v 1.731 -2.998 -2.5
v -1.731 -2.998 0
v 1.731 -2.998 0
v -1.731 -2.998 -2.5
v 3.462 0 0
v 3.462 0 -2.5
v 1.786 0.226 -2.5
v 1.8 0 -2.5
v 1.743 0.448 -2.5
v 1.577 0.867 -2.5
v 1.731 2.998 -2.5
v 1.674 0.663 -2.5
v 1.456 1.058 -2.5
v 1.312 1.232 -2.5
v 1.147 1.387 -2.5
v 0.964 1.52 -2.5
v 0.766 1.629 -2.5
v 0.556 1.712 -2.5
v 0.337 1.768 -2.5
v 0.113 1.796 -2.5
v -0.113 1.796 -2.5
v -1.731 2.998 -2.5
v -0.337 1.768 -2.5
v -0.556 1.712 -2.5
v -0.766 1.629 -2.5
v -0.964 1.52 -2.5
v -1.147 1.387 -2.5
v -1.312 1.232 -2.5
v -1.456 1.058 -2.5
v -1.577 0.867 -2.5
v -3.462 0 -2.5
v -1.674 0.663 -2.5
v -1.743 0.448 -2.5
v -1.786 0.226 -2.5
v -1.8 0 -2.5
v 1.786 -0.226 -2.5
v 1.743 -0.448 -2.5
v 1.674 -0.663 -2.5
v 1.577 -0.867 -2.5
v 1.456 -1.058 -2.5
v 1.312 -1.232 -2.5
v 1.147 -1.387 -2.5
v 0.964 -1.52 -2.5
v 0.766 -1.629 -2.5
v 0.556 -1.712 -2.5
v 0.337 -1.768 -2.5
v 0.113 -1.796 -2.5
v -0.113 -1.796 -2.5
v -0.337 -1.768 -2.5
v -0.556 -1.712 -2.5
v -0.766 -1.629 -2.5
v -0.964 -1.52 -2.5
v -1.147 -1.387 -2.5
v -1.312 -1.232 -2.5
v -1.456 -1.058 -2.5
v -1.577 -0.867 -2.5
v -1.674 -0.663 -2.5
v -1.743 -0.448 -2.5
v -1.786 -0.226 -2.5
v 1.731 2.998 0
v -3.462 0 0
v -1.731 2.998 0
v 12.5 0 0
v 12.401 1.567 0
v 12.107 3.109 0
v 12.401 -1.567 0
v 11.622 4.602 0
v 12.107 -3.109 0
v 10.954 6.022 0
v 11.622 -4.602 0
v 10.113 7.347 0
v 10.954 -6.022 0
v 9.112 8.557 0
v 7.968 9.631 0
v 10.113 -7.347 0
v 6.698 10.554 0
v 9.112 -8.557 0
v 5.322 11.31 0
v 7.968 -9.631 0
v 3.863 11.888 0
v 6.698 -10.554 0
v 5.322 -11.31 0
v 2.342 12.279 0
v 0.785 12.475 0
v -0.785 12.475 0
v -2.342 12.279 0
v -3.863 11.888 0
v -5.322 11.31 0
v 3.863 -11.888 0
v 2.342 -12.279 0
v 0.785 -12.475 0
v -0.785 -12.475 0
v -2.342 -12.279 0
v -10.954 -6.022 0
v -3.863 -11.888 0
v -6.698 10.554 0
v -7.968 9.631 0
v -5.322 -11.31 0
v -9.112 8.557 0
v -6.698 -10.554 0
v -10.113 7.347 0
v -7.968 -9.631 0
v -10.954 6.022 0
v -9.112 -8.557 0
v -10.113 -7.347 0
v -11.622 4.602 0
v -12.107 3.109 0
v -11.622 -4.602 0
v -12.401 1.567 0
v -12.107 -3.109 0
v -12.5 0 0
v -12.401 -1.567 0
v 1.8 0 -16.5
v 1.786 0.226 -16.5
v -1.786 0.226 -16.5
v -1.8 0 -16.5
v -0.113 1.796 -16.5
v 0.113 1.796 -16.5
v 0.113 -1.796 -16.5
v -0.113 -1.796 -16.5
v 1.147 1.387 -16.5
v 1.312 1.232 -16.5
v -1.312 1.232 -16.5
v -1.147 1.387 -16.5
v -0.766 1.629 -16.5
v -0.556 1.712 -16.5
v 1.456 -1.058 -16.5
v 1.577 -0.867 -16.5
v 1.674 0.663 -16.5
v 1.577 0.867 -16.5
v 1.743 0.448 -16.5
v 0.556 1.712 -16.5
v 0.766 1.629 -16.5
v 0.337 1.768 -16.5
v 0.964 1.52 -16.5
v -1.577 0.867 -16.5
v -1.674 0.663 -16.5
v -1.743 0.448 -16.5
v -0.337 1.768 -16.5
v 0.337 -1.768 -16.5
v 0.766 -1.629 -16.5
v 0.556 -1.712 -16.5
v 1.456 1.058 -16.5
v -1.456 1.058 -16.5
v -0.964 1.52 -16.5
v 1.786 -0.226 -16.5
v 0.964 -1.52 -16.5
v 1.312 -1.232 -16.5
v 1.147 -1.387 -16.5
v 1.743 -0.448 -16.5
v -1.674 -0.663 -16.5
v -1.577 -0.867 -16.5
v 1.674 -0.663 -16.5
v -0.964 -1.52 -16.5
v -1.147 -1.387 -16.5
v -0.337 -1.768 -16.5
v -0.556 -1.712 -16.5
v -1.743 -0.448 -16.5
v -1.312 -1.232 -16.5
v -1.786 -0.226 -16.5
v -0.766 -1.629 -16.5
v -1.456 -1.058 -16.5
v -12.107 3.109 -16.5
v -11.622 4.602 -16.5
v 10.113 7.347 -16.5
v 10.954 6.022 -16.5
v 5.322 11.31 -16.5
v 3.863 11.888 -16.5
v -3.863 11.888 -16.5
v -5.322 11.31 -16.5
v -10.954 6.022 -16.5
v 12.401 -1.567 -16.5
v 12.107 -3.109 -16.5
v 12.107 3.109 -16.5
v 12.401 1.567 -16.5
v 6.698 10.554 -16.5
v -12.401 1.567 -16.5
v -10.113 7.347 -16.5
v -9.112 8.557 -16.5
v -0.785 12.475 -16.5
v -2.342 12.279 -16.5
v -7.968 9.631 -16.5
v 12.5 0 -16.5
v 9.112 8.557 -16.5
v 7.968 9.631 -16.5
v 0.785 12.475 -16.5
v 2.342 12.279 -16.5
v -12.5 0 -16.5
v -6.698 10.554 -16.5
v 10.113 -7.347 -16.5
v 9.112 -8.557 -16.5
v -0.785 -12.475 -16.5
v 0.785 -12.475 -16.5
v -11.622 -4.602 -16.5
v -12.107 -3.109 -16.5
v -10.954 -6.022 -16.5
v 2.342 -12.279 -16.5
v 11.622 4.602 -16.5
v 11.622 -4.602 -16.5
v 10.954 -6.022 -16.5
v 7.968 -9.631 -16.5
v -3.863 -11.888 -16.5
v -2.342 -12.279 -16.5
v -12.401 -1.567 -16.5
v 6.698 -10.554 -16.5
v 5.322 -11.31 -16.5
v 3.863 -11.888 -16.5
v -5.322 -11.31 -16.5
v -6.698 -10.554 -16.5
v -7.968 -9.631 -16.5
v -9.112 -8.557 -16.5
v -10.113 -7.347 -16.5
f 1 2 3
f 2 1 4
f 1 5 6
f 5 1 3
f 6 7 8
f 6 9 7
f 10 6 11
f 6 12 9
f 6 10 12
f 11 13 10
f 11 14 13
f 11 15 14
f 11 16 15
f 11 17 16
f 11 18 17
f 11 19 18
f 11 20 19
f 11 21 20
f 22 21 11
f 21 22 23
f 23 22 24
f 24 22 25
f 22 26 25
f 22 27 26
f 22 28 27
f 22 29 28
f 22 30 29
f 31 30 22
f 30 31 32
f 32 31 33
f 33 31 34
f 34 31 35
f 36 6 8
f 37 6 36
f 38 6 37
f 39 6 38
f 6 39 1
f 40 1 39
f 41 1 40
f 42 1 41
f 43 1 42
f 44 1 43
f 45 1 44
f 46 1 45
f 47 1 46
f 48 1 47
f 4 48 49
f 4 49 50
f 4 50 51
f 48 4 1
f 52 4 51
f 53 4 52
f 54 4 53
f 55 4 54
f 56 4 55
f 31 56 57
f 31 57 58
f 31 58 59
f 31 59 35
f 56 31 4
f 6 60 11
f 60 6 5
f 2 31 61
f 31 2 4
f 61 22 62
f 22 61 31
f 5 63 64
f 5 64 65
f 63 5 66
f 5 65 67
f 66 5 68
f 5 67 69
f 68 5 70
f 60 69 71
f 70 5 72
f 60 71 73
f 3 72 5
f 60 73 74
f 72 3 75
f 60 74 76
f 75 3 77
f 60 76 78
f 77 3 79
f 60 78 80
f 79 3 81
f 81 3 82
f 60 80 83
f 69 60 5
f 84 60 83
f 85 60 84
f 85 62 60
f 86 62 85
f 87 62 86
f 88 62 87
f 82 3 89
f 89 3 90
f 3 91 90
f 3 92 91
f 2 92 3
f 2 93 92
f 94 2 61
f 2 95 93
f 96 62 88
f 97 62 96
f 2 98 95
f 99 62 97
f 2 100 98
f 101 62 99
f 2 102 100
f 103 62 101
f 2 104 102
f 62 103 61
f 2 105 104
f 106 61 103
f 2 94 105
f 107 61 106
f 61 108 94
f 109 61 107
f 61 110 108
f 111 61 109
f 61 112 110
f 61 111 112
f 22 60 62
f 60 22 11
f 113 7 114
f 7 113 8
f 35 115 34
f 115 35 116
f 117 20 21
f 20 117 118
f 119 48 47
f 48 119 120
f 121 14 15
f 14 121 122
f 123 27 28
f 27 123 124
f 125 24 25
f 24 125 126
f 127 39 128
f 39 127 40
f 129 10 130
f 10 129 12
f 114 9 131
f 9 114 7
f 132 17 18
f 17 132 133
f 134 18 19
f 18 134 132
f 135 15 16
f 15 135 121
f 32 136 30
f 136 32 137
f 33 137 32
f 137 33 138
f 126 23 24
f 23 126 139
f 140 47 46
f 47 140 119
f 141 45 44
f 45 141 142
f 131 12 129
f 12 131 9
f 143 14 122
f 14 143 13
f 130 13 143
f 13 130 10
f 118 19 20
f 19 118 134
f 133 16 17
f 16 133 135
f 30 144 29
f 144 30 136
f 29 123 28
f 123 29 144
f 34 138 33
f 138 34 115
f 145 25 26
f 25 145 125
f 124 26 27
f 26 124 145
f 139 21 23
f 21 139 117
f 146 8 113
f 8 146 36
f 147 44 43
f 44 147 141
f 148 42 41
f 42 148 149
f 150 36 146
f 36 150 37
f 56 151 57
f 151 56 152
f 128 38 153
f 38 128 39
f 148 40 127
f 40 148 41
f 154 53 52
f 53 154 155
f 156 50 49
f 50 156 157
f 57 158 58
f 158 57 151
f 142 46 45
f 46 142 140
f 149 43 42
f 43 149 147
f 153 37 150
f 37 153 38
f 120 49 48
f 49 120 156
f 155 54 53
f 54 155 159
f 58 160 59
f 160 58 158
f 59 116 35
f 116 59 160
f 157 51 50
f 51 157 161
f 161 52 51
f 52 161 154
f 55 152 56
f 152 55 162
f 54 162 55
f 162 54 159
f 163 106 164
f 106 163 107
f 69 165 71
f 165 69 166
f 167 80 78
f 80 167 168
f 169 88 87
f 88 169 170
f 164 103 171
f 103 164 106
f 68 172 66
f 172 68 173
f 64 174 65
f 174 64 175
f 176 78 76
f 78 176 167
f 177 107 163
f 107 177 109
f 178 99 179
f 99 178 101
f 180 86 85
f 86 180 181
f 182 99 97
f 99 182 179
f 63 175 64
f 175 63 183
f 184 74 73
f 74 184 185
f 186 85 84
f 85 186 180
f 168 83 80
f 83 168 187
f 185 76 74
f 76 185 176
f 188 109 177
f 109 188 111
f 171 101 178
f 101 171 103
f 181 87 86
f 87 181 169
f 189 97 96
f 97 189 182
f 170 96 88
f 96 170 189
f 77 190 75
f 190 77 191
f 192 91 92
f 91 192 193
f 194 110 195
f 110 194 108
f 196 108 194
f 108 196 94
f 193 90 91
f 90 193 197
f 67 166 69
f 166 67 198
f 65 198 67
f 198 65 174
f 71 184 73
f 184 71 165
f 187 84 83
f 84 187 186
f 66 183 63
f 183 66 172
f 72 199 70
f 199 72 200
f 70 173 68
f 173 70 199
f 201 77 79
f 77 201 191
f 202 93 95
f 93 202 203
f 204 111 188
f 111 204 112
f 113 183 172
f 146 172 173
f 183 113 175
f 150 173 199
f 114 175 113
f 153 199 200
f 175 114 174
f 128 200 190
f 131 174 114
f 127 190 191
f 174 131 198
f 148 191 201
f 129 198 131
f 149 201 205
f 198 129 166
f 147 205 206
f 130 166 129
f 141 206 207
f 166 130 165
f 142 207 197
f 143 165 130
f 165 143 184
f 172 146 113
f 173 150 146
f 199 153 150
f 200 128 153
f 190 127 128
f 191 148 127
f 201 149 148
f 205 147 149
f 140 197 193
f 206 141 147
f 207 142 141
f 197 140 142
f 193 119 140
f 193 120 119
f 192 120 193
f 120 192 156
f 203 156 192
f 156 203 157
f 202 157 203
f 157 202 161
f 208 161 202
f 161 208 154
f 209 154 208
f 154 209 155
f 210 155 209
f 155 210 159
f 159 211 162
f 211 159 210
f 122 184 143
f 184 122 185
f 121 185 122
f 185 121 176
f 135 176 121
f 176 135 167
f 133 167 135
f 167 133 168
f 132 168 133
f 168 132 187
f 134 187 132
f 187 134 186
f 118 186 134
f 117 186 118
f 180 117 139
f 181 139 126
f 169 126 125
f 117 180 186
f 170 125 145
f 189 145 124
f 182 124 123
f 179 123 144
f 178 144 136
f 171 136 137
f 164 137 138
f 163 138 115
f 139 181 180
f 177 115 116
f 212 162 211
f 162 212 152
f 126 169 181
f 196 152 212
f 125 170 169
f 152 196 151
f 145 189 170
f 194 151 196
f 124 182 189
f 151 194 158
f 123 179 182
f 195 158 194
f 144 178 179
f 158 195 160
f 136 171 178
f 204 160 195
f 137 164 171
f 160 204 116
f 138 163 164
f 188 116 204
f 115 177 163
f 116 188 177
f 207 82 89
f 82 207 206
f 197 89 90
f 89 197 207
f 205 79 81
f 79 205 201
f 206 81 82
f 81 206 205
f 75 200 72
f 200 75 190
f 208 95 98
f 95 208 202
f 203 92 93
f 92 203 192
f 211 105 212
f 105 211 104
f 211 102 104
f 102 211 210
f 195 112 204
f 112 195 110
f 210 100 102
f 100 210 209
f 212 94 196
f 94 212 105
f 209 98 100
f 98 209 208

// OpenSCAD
$fn = 50;


difference() {
	union() {
		translate(v = [0, 0, -16.5000000000]) {
			cylinder(h = 16.5000000000, r = 12.5000000000);
		}
	}
	union() {
		translate(v = [0, 0, 0]) {
			rotate(a = [0, 0, 0]) {
				difference() {
					union() {
						translate(v = [0, 0, -2.5000000000]) {
							linear_extrude(height = 2.5000000000) {
								polygon(points = [[3.4620000000, 0.0000000000], [1.7310000000, 2.9981799479], [-1.7310000000, 2.9981799479], [-3.4620000000, 0.0000000000], [-1.7310000000, -2.9981799479], [1.7310000000, -2.9981799479]]);
							}
						}
					}
					union();
				}
			}
		}
		#translate(v = [0, 0, -100.0000000000]) {
			cylinder(h = 200, r = 1.8000000000);
		}
	}
}
